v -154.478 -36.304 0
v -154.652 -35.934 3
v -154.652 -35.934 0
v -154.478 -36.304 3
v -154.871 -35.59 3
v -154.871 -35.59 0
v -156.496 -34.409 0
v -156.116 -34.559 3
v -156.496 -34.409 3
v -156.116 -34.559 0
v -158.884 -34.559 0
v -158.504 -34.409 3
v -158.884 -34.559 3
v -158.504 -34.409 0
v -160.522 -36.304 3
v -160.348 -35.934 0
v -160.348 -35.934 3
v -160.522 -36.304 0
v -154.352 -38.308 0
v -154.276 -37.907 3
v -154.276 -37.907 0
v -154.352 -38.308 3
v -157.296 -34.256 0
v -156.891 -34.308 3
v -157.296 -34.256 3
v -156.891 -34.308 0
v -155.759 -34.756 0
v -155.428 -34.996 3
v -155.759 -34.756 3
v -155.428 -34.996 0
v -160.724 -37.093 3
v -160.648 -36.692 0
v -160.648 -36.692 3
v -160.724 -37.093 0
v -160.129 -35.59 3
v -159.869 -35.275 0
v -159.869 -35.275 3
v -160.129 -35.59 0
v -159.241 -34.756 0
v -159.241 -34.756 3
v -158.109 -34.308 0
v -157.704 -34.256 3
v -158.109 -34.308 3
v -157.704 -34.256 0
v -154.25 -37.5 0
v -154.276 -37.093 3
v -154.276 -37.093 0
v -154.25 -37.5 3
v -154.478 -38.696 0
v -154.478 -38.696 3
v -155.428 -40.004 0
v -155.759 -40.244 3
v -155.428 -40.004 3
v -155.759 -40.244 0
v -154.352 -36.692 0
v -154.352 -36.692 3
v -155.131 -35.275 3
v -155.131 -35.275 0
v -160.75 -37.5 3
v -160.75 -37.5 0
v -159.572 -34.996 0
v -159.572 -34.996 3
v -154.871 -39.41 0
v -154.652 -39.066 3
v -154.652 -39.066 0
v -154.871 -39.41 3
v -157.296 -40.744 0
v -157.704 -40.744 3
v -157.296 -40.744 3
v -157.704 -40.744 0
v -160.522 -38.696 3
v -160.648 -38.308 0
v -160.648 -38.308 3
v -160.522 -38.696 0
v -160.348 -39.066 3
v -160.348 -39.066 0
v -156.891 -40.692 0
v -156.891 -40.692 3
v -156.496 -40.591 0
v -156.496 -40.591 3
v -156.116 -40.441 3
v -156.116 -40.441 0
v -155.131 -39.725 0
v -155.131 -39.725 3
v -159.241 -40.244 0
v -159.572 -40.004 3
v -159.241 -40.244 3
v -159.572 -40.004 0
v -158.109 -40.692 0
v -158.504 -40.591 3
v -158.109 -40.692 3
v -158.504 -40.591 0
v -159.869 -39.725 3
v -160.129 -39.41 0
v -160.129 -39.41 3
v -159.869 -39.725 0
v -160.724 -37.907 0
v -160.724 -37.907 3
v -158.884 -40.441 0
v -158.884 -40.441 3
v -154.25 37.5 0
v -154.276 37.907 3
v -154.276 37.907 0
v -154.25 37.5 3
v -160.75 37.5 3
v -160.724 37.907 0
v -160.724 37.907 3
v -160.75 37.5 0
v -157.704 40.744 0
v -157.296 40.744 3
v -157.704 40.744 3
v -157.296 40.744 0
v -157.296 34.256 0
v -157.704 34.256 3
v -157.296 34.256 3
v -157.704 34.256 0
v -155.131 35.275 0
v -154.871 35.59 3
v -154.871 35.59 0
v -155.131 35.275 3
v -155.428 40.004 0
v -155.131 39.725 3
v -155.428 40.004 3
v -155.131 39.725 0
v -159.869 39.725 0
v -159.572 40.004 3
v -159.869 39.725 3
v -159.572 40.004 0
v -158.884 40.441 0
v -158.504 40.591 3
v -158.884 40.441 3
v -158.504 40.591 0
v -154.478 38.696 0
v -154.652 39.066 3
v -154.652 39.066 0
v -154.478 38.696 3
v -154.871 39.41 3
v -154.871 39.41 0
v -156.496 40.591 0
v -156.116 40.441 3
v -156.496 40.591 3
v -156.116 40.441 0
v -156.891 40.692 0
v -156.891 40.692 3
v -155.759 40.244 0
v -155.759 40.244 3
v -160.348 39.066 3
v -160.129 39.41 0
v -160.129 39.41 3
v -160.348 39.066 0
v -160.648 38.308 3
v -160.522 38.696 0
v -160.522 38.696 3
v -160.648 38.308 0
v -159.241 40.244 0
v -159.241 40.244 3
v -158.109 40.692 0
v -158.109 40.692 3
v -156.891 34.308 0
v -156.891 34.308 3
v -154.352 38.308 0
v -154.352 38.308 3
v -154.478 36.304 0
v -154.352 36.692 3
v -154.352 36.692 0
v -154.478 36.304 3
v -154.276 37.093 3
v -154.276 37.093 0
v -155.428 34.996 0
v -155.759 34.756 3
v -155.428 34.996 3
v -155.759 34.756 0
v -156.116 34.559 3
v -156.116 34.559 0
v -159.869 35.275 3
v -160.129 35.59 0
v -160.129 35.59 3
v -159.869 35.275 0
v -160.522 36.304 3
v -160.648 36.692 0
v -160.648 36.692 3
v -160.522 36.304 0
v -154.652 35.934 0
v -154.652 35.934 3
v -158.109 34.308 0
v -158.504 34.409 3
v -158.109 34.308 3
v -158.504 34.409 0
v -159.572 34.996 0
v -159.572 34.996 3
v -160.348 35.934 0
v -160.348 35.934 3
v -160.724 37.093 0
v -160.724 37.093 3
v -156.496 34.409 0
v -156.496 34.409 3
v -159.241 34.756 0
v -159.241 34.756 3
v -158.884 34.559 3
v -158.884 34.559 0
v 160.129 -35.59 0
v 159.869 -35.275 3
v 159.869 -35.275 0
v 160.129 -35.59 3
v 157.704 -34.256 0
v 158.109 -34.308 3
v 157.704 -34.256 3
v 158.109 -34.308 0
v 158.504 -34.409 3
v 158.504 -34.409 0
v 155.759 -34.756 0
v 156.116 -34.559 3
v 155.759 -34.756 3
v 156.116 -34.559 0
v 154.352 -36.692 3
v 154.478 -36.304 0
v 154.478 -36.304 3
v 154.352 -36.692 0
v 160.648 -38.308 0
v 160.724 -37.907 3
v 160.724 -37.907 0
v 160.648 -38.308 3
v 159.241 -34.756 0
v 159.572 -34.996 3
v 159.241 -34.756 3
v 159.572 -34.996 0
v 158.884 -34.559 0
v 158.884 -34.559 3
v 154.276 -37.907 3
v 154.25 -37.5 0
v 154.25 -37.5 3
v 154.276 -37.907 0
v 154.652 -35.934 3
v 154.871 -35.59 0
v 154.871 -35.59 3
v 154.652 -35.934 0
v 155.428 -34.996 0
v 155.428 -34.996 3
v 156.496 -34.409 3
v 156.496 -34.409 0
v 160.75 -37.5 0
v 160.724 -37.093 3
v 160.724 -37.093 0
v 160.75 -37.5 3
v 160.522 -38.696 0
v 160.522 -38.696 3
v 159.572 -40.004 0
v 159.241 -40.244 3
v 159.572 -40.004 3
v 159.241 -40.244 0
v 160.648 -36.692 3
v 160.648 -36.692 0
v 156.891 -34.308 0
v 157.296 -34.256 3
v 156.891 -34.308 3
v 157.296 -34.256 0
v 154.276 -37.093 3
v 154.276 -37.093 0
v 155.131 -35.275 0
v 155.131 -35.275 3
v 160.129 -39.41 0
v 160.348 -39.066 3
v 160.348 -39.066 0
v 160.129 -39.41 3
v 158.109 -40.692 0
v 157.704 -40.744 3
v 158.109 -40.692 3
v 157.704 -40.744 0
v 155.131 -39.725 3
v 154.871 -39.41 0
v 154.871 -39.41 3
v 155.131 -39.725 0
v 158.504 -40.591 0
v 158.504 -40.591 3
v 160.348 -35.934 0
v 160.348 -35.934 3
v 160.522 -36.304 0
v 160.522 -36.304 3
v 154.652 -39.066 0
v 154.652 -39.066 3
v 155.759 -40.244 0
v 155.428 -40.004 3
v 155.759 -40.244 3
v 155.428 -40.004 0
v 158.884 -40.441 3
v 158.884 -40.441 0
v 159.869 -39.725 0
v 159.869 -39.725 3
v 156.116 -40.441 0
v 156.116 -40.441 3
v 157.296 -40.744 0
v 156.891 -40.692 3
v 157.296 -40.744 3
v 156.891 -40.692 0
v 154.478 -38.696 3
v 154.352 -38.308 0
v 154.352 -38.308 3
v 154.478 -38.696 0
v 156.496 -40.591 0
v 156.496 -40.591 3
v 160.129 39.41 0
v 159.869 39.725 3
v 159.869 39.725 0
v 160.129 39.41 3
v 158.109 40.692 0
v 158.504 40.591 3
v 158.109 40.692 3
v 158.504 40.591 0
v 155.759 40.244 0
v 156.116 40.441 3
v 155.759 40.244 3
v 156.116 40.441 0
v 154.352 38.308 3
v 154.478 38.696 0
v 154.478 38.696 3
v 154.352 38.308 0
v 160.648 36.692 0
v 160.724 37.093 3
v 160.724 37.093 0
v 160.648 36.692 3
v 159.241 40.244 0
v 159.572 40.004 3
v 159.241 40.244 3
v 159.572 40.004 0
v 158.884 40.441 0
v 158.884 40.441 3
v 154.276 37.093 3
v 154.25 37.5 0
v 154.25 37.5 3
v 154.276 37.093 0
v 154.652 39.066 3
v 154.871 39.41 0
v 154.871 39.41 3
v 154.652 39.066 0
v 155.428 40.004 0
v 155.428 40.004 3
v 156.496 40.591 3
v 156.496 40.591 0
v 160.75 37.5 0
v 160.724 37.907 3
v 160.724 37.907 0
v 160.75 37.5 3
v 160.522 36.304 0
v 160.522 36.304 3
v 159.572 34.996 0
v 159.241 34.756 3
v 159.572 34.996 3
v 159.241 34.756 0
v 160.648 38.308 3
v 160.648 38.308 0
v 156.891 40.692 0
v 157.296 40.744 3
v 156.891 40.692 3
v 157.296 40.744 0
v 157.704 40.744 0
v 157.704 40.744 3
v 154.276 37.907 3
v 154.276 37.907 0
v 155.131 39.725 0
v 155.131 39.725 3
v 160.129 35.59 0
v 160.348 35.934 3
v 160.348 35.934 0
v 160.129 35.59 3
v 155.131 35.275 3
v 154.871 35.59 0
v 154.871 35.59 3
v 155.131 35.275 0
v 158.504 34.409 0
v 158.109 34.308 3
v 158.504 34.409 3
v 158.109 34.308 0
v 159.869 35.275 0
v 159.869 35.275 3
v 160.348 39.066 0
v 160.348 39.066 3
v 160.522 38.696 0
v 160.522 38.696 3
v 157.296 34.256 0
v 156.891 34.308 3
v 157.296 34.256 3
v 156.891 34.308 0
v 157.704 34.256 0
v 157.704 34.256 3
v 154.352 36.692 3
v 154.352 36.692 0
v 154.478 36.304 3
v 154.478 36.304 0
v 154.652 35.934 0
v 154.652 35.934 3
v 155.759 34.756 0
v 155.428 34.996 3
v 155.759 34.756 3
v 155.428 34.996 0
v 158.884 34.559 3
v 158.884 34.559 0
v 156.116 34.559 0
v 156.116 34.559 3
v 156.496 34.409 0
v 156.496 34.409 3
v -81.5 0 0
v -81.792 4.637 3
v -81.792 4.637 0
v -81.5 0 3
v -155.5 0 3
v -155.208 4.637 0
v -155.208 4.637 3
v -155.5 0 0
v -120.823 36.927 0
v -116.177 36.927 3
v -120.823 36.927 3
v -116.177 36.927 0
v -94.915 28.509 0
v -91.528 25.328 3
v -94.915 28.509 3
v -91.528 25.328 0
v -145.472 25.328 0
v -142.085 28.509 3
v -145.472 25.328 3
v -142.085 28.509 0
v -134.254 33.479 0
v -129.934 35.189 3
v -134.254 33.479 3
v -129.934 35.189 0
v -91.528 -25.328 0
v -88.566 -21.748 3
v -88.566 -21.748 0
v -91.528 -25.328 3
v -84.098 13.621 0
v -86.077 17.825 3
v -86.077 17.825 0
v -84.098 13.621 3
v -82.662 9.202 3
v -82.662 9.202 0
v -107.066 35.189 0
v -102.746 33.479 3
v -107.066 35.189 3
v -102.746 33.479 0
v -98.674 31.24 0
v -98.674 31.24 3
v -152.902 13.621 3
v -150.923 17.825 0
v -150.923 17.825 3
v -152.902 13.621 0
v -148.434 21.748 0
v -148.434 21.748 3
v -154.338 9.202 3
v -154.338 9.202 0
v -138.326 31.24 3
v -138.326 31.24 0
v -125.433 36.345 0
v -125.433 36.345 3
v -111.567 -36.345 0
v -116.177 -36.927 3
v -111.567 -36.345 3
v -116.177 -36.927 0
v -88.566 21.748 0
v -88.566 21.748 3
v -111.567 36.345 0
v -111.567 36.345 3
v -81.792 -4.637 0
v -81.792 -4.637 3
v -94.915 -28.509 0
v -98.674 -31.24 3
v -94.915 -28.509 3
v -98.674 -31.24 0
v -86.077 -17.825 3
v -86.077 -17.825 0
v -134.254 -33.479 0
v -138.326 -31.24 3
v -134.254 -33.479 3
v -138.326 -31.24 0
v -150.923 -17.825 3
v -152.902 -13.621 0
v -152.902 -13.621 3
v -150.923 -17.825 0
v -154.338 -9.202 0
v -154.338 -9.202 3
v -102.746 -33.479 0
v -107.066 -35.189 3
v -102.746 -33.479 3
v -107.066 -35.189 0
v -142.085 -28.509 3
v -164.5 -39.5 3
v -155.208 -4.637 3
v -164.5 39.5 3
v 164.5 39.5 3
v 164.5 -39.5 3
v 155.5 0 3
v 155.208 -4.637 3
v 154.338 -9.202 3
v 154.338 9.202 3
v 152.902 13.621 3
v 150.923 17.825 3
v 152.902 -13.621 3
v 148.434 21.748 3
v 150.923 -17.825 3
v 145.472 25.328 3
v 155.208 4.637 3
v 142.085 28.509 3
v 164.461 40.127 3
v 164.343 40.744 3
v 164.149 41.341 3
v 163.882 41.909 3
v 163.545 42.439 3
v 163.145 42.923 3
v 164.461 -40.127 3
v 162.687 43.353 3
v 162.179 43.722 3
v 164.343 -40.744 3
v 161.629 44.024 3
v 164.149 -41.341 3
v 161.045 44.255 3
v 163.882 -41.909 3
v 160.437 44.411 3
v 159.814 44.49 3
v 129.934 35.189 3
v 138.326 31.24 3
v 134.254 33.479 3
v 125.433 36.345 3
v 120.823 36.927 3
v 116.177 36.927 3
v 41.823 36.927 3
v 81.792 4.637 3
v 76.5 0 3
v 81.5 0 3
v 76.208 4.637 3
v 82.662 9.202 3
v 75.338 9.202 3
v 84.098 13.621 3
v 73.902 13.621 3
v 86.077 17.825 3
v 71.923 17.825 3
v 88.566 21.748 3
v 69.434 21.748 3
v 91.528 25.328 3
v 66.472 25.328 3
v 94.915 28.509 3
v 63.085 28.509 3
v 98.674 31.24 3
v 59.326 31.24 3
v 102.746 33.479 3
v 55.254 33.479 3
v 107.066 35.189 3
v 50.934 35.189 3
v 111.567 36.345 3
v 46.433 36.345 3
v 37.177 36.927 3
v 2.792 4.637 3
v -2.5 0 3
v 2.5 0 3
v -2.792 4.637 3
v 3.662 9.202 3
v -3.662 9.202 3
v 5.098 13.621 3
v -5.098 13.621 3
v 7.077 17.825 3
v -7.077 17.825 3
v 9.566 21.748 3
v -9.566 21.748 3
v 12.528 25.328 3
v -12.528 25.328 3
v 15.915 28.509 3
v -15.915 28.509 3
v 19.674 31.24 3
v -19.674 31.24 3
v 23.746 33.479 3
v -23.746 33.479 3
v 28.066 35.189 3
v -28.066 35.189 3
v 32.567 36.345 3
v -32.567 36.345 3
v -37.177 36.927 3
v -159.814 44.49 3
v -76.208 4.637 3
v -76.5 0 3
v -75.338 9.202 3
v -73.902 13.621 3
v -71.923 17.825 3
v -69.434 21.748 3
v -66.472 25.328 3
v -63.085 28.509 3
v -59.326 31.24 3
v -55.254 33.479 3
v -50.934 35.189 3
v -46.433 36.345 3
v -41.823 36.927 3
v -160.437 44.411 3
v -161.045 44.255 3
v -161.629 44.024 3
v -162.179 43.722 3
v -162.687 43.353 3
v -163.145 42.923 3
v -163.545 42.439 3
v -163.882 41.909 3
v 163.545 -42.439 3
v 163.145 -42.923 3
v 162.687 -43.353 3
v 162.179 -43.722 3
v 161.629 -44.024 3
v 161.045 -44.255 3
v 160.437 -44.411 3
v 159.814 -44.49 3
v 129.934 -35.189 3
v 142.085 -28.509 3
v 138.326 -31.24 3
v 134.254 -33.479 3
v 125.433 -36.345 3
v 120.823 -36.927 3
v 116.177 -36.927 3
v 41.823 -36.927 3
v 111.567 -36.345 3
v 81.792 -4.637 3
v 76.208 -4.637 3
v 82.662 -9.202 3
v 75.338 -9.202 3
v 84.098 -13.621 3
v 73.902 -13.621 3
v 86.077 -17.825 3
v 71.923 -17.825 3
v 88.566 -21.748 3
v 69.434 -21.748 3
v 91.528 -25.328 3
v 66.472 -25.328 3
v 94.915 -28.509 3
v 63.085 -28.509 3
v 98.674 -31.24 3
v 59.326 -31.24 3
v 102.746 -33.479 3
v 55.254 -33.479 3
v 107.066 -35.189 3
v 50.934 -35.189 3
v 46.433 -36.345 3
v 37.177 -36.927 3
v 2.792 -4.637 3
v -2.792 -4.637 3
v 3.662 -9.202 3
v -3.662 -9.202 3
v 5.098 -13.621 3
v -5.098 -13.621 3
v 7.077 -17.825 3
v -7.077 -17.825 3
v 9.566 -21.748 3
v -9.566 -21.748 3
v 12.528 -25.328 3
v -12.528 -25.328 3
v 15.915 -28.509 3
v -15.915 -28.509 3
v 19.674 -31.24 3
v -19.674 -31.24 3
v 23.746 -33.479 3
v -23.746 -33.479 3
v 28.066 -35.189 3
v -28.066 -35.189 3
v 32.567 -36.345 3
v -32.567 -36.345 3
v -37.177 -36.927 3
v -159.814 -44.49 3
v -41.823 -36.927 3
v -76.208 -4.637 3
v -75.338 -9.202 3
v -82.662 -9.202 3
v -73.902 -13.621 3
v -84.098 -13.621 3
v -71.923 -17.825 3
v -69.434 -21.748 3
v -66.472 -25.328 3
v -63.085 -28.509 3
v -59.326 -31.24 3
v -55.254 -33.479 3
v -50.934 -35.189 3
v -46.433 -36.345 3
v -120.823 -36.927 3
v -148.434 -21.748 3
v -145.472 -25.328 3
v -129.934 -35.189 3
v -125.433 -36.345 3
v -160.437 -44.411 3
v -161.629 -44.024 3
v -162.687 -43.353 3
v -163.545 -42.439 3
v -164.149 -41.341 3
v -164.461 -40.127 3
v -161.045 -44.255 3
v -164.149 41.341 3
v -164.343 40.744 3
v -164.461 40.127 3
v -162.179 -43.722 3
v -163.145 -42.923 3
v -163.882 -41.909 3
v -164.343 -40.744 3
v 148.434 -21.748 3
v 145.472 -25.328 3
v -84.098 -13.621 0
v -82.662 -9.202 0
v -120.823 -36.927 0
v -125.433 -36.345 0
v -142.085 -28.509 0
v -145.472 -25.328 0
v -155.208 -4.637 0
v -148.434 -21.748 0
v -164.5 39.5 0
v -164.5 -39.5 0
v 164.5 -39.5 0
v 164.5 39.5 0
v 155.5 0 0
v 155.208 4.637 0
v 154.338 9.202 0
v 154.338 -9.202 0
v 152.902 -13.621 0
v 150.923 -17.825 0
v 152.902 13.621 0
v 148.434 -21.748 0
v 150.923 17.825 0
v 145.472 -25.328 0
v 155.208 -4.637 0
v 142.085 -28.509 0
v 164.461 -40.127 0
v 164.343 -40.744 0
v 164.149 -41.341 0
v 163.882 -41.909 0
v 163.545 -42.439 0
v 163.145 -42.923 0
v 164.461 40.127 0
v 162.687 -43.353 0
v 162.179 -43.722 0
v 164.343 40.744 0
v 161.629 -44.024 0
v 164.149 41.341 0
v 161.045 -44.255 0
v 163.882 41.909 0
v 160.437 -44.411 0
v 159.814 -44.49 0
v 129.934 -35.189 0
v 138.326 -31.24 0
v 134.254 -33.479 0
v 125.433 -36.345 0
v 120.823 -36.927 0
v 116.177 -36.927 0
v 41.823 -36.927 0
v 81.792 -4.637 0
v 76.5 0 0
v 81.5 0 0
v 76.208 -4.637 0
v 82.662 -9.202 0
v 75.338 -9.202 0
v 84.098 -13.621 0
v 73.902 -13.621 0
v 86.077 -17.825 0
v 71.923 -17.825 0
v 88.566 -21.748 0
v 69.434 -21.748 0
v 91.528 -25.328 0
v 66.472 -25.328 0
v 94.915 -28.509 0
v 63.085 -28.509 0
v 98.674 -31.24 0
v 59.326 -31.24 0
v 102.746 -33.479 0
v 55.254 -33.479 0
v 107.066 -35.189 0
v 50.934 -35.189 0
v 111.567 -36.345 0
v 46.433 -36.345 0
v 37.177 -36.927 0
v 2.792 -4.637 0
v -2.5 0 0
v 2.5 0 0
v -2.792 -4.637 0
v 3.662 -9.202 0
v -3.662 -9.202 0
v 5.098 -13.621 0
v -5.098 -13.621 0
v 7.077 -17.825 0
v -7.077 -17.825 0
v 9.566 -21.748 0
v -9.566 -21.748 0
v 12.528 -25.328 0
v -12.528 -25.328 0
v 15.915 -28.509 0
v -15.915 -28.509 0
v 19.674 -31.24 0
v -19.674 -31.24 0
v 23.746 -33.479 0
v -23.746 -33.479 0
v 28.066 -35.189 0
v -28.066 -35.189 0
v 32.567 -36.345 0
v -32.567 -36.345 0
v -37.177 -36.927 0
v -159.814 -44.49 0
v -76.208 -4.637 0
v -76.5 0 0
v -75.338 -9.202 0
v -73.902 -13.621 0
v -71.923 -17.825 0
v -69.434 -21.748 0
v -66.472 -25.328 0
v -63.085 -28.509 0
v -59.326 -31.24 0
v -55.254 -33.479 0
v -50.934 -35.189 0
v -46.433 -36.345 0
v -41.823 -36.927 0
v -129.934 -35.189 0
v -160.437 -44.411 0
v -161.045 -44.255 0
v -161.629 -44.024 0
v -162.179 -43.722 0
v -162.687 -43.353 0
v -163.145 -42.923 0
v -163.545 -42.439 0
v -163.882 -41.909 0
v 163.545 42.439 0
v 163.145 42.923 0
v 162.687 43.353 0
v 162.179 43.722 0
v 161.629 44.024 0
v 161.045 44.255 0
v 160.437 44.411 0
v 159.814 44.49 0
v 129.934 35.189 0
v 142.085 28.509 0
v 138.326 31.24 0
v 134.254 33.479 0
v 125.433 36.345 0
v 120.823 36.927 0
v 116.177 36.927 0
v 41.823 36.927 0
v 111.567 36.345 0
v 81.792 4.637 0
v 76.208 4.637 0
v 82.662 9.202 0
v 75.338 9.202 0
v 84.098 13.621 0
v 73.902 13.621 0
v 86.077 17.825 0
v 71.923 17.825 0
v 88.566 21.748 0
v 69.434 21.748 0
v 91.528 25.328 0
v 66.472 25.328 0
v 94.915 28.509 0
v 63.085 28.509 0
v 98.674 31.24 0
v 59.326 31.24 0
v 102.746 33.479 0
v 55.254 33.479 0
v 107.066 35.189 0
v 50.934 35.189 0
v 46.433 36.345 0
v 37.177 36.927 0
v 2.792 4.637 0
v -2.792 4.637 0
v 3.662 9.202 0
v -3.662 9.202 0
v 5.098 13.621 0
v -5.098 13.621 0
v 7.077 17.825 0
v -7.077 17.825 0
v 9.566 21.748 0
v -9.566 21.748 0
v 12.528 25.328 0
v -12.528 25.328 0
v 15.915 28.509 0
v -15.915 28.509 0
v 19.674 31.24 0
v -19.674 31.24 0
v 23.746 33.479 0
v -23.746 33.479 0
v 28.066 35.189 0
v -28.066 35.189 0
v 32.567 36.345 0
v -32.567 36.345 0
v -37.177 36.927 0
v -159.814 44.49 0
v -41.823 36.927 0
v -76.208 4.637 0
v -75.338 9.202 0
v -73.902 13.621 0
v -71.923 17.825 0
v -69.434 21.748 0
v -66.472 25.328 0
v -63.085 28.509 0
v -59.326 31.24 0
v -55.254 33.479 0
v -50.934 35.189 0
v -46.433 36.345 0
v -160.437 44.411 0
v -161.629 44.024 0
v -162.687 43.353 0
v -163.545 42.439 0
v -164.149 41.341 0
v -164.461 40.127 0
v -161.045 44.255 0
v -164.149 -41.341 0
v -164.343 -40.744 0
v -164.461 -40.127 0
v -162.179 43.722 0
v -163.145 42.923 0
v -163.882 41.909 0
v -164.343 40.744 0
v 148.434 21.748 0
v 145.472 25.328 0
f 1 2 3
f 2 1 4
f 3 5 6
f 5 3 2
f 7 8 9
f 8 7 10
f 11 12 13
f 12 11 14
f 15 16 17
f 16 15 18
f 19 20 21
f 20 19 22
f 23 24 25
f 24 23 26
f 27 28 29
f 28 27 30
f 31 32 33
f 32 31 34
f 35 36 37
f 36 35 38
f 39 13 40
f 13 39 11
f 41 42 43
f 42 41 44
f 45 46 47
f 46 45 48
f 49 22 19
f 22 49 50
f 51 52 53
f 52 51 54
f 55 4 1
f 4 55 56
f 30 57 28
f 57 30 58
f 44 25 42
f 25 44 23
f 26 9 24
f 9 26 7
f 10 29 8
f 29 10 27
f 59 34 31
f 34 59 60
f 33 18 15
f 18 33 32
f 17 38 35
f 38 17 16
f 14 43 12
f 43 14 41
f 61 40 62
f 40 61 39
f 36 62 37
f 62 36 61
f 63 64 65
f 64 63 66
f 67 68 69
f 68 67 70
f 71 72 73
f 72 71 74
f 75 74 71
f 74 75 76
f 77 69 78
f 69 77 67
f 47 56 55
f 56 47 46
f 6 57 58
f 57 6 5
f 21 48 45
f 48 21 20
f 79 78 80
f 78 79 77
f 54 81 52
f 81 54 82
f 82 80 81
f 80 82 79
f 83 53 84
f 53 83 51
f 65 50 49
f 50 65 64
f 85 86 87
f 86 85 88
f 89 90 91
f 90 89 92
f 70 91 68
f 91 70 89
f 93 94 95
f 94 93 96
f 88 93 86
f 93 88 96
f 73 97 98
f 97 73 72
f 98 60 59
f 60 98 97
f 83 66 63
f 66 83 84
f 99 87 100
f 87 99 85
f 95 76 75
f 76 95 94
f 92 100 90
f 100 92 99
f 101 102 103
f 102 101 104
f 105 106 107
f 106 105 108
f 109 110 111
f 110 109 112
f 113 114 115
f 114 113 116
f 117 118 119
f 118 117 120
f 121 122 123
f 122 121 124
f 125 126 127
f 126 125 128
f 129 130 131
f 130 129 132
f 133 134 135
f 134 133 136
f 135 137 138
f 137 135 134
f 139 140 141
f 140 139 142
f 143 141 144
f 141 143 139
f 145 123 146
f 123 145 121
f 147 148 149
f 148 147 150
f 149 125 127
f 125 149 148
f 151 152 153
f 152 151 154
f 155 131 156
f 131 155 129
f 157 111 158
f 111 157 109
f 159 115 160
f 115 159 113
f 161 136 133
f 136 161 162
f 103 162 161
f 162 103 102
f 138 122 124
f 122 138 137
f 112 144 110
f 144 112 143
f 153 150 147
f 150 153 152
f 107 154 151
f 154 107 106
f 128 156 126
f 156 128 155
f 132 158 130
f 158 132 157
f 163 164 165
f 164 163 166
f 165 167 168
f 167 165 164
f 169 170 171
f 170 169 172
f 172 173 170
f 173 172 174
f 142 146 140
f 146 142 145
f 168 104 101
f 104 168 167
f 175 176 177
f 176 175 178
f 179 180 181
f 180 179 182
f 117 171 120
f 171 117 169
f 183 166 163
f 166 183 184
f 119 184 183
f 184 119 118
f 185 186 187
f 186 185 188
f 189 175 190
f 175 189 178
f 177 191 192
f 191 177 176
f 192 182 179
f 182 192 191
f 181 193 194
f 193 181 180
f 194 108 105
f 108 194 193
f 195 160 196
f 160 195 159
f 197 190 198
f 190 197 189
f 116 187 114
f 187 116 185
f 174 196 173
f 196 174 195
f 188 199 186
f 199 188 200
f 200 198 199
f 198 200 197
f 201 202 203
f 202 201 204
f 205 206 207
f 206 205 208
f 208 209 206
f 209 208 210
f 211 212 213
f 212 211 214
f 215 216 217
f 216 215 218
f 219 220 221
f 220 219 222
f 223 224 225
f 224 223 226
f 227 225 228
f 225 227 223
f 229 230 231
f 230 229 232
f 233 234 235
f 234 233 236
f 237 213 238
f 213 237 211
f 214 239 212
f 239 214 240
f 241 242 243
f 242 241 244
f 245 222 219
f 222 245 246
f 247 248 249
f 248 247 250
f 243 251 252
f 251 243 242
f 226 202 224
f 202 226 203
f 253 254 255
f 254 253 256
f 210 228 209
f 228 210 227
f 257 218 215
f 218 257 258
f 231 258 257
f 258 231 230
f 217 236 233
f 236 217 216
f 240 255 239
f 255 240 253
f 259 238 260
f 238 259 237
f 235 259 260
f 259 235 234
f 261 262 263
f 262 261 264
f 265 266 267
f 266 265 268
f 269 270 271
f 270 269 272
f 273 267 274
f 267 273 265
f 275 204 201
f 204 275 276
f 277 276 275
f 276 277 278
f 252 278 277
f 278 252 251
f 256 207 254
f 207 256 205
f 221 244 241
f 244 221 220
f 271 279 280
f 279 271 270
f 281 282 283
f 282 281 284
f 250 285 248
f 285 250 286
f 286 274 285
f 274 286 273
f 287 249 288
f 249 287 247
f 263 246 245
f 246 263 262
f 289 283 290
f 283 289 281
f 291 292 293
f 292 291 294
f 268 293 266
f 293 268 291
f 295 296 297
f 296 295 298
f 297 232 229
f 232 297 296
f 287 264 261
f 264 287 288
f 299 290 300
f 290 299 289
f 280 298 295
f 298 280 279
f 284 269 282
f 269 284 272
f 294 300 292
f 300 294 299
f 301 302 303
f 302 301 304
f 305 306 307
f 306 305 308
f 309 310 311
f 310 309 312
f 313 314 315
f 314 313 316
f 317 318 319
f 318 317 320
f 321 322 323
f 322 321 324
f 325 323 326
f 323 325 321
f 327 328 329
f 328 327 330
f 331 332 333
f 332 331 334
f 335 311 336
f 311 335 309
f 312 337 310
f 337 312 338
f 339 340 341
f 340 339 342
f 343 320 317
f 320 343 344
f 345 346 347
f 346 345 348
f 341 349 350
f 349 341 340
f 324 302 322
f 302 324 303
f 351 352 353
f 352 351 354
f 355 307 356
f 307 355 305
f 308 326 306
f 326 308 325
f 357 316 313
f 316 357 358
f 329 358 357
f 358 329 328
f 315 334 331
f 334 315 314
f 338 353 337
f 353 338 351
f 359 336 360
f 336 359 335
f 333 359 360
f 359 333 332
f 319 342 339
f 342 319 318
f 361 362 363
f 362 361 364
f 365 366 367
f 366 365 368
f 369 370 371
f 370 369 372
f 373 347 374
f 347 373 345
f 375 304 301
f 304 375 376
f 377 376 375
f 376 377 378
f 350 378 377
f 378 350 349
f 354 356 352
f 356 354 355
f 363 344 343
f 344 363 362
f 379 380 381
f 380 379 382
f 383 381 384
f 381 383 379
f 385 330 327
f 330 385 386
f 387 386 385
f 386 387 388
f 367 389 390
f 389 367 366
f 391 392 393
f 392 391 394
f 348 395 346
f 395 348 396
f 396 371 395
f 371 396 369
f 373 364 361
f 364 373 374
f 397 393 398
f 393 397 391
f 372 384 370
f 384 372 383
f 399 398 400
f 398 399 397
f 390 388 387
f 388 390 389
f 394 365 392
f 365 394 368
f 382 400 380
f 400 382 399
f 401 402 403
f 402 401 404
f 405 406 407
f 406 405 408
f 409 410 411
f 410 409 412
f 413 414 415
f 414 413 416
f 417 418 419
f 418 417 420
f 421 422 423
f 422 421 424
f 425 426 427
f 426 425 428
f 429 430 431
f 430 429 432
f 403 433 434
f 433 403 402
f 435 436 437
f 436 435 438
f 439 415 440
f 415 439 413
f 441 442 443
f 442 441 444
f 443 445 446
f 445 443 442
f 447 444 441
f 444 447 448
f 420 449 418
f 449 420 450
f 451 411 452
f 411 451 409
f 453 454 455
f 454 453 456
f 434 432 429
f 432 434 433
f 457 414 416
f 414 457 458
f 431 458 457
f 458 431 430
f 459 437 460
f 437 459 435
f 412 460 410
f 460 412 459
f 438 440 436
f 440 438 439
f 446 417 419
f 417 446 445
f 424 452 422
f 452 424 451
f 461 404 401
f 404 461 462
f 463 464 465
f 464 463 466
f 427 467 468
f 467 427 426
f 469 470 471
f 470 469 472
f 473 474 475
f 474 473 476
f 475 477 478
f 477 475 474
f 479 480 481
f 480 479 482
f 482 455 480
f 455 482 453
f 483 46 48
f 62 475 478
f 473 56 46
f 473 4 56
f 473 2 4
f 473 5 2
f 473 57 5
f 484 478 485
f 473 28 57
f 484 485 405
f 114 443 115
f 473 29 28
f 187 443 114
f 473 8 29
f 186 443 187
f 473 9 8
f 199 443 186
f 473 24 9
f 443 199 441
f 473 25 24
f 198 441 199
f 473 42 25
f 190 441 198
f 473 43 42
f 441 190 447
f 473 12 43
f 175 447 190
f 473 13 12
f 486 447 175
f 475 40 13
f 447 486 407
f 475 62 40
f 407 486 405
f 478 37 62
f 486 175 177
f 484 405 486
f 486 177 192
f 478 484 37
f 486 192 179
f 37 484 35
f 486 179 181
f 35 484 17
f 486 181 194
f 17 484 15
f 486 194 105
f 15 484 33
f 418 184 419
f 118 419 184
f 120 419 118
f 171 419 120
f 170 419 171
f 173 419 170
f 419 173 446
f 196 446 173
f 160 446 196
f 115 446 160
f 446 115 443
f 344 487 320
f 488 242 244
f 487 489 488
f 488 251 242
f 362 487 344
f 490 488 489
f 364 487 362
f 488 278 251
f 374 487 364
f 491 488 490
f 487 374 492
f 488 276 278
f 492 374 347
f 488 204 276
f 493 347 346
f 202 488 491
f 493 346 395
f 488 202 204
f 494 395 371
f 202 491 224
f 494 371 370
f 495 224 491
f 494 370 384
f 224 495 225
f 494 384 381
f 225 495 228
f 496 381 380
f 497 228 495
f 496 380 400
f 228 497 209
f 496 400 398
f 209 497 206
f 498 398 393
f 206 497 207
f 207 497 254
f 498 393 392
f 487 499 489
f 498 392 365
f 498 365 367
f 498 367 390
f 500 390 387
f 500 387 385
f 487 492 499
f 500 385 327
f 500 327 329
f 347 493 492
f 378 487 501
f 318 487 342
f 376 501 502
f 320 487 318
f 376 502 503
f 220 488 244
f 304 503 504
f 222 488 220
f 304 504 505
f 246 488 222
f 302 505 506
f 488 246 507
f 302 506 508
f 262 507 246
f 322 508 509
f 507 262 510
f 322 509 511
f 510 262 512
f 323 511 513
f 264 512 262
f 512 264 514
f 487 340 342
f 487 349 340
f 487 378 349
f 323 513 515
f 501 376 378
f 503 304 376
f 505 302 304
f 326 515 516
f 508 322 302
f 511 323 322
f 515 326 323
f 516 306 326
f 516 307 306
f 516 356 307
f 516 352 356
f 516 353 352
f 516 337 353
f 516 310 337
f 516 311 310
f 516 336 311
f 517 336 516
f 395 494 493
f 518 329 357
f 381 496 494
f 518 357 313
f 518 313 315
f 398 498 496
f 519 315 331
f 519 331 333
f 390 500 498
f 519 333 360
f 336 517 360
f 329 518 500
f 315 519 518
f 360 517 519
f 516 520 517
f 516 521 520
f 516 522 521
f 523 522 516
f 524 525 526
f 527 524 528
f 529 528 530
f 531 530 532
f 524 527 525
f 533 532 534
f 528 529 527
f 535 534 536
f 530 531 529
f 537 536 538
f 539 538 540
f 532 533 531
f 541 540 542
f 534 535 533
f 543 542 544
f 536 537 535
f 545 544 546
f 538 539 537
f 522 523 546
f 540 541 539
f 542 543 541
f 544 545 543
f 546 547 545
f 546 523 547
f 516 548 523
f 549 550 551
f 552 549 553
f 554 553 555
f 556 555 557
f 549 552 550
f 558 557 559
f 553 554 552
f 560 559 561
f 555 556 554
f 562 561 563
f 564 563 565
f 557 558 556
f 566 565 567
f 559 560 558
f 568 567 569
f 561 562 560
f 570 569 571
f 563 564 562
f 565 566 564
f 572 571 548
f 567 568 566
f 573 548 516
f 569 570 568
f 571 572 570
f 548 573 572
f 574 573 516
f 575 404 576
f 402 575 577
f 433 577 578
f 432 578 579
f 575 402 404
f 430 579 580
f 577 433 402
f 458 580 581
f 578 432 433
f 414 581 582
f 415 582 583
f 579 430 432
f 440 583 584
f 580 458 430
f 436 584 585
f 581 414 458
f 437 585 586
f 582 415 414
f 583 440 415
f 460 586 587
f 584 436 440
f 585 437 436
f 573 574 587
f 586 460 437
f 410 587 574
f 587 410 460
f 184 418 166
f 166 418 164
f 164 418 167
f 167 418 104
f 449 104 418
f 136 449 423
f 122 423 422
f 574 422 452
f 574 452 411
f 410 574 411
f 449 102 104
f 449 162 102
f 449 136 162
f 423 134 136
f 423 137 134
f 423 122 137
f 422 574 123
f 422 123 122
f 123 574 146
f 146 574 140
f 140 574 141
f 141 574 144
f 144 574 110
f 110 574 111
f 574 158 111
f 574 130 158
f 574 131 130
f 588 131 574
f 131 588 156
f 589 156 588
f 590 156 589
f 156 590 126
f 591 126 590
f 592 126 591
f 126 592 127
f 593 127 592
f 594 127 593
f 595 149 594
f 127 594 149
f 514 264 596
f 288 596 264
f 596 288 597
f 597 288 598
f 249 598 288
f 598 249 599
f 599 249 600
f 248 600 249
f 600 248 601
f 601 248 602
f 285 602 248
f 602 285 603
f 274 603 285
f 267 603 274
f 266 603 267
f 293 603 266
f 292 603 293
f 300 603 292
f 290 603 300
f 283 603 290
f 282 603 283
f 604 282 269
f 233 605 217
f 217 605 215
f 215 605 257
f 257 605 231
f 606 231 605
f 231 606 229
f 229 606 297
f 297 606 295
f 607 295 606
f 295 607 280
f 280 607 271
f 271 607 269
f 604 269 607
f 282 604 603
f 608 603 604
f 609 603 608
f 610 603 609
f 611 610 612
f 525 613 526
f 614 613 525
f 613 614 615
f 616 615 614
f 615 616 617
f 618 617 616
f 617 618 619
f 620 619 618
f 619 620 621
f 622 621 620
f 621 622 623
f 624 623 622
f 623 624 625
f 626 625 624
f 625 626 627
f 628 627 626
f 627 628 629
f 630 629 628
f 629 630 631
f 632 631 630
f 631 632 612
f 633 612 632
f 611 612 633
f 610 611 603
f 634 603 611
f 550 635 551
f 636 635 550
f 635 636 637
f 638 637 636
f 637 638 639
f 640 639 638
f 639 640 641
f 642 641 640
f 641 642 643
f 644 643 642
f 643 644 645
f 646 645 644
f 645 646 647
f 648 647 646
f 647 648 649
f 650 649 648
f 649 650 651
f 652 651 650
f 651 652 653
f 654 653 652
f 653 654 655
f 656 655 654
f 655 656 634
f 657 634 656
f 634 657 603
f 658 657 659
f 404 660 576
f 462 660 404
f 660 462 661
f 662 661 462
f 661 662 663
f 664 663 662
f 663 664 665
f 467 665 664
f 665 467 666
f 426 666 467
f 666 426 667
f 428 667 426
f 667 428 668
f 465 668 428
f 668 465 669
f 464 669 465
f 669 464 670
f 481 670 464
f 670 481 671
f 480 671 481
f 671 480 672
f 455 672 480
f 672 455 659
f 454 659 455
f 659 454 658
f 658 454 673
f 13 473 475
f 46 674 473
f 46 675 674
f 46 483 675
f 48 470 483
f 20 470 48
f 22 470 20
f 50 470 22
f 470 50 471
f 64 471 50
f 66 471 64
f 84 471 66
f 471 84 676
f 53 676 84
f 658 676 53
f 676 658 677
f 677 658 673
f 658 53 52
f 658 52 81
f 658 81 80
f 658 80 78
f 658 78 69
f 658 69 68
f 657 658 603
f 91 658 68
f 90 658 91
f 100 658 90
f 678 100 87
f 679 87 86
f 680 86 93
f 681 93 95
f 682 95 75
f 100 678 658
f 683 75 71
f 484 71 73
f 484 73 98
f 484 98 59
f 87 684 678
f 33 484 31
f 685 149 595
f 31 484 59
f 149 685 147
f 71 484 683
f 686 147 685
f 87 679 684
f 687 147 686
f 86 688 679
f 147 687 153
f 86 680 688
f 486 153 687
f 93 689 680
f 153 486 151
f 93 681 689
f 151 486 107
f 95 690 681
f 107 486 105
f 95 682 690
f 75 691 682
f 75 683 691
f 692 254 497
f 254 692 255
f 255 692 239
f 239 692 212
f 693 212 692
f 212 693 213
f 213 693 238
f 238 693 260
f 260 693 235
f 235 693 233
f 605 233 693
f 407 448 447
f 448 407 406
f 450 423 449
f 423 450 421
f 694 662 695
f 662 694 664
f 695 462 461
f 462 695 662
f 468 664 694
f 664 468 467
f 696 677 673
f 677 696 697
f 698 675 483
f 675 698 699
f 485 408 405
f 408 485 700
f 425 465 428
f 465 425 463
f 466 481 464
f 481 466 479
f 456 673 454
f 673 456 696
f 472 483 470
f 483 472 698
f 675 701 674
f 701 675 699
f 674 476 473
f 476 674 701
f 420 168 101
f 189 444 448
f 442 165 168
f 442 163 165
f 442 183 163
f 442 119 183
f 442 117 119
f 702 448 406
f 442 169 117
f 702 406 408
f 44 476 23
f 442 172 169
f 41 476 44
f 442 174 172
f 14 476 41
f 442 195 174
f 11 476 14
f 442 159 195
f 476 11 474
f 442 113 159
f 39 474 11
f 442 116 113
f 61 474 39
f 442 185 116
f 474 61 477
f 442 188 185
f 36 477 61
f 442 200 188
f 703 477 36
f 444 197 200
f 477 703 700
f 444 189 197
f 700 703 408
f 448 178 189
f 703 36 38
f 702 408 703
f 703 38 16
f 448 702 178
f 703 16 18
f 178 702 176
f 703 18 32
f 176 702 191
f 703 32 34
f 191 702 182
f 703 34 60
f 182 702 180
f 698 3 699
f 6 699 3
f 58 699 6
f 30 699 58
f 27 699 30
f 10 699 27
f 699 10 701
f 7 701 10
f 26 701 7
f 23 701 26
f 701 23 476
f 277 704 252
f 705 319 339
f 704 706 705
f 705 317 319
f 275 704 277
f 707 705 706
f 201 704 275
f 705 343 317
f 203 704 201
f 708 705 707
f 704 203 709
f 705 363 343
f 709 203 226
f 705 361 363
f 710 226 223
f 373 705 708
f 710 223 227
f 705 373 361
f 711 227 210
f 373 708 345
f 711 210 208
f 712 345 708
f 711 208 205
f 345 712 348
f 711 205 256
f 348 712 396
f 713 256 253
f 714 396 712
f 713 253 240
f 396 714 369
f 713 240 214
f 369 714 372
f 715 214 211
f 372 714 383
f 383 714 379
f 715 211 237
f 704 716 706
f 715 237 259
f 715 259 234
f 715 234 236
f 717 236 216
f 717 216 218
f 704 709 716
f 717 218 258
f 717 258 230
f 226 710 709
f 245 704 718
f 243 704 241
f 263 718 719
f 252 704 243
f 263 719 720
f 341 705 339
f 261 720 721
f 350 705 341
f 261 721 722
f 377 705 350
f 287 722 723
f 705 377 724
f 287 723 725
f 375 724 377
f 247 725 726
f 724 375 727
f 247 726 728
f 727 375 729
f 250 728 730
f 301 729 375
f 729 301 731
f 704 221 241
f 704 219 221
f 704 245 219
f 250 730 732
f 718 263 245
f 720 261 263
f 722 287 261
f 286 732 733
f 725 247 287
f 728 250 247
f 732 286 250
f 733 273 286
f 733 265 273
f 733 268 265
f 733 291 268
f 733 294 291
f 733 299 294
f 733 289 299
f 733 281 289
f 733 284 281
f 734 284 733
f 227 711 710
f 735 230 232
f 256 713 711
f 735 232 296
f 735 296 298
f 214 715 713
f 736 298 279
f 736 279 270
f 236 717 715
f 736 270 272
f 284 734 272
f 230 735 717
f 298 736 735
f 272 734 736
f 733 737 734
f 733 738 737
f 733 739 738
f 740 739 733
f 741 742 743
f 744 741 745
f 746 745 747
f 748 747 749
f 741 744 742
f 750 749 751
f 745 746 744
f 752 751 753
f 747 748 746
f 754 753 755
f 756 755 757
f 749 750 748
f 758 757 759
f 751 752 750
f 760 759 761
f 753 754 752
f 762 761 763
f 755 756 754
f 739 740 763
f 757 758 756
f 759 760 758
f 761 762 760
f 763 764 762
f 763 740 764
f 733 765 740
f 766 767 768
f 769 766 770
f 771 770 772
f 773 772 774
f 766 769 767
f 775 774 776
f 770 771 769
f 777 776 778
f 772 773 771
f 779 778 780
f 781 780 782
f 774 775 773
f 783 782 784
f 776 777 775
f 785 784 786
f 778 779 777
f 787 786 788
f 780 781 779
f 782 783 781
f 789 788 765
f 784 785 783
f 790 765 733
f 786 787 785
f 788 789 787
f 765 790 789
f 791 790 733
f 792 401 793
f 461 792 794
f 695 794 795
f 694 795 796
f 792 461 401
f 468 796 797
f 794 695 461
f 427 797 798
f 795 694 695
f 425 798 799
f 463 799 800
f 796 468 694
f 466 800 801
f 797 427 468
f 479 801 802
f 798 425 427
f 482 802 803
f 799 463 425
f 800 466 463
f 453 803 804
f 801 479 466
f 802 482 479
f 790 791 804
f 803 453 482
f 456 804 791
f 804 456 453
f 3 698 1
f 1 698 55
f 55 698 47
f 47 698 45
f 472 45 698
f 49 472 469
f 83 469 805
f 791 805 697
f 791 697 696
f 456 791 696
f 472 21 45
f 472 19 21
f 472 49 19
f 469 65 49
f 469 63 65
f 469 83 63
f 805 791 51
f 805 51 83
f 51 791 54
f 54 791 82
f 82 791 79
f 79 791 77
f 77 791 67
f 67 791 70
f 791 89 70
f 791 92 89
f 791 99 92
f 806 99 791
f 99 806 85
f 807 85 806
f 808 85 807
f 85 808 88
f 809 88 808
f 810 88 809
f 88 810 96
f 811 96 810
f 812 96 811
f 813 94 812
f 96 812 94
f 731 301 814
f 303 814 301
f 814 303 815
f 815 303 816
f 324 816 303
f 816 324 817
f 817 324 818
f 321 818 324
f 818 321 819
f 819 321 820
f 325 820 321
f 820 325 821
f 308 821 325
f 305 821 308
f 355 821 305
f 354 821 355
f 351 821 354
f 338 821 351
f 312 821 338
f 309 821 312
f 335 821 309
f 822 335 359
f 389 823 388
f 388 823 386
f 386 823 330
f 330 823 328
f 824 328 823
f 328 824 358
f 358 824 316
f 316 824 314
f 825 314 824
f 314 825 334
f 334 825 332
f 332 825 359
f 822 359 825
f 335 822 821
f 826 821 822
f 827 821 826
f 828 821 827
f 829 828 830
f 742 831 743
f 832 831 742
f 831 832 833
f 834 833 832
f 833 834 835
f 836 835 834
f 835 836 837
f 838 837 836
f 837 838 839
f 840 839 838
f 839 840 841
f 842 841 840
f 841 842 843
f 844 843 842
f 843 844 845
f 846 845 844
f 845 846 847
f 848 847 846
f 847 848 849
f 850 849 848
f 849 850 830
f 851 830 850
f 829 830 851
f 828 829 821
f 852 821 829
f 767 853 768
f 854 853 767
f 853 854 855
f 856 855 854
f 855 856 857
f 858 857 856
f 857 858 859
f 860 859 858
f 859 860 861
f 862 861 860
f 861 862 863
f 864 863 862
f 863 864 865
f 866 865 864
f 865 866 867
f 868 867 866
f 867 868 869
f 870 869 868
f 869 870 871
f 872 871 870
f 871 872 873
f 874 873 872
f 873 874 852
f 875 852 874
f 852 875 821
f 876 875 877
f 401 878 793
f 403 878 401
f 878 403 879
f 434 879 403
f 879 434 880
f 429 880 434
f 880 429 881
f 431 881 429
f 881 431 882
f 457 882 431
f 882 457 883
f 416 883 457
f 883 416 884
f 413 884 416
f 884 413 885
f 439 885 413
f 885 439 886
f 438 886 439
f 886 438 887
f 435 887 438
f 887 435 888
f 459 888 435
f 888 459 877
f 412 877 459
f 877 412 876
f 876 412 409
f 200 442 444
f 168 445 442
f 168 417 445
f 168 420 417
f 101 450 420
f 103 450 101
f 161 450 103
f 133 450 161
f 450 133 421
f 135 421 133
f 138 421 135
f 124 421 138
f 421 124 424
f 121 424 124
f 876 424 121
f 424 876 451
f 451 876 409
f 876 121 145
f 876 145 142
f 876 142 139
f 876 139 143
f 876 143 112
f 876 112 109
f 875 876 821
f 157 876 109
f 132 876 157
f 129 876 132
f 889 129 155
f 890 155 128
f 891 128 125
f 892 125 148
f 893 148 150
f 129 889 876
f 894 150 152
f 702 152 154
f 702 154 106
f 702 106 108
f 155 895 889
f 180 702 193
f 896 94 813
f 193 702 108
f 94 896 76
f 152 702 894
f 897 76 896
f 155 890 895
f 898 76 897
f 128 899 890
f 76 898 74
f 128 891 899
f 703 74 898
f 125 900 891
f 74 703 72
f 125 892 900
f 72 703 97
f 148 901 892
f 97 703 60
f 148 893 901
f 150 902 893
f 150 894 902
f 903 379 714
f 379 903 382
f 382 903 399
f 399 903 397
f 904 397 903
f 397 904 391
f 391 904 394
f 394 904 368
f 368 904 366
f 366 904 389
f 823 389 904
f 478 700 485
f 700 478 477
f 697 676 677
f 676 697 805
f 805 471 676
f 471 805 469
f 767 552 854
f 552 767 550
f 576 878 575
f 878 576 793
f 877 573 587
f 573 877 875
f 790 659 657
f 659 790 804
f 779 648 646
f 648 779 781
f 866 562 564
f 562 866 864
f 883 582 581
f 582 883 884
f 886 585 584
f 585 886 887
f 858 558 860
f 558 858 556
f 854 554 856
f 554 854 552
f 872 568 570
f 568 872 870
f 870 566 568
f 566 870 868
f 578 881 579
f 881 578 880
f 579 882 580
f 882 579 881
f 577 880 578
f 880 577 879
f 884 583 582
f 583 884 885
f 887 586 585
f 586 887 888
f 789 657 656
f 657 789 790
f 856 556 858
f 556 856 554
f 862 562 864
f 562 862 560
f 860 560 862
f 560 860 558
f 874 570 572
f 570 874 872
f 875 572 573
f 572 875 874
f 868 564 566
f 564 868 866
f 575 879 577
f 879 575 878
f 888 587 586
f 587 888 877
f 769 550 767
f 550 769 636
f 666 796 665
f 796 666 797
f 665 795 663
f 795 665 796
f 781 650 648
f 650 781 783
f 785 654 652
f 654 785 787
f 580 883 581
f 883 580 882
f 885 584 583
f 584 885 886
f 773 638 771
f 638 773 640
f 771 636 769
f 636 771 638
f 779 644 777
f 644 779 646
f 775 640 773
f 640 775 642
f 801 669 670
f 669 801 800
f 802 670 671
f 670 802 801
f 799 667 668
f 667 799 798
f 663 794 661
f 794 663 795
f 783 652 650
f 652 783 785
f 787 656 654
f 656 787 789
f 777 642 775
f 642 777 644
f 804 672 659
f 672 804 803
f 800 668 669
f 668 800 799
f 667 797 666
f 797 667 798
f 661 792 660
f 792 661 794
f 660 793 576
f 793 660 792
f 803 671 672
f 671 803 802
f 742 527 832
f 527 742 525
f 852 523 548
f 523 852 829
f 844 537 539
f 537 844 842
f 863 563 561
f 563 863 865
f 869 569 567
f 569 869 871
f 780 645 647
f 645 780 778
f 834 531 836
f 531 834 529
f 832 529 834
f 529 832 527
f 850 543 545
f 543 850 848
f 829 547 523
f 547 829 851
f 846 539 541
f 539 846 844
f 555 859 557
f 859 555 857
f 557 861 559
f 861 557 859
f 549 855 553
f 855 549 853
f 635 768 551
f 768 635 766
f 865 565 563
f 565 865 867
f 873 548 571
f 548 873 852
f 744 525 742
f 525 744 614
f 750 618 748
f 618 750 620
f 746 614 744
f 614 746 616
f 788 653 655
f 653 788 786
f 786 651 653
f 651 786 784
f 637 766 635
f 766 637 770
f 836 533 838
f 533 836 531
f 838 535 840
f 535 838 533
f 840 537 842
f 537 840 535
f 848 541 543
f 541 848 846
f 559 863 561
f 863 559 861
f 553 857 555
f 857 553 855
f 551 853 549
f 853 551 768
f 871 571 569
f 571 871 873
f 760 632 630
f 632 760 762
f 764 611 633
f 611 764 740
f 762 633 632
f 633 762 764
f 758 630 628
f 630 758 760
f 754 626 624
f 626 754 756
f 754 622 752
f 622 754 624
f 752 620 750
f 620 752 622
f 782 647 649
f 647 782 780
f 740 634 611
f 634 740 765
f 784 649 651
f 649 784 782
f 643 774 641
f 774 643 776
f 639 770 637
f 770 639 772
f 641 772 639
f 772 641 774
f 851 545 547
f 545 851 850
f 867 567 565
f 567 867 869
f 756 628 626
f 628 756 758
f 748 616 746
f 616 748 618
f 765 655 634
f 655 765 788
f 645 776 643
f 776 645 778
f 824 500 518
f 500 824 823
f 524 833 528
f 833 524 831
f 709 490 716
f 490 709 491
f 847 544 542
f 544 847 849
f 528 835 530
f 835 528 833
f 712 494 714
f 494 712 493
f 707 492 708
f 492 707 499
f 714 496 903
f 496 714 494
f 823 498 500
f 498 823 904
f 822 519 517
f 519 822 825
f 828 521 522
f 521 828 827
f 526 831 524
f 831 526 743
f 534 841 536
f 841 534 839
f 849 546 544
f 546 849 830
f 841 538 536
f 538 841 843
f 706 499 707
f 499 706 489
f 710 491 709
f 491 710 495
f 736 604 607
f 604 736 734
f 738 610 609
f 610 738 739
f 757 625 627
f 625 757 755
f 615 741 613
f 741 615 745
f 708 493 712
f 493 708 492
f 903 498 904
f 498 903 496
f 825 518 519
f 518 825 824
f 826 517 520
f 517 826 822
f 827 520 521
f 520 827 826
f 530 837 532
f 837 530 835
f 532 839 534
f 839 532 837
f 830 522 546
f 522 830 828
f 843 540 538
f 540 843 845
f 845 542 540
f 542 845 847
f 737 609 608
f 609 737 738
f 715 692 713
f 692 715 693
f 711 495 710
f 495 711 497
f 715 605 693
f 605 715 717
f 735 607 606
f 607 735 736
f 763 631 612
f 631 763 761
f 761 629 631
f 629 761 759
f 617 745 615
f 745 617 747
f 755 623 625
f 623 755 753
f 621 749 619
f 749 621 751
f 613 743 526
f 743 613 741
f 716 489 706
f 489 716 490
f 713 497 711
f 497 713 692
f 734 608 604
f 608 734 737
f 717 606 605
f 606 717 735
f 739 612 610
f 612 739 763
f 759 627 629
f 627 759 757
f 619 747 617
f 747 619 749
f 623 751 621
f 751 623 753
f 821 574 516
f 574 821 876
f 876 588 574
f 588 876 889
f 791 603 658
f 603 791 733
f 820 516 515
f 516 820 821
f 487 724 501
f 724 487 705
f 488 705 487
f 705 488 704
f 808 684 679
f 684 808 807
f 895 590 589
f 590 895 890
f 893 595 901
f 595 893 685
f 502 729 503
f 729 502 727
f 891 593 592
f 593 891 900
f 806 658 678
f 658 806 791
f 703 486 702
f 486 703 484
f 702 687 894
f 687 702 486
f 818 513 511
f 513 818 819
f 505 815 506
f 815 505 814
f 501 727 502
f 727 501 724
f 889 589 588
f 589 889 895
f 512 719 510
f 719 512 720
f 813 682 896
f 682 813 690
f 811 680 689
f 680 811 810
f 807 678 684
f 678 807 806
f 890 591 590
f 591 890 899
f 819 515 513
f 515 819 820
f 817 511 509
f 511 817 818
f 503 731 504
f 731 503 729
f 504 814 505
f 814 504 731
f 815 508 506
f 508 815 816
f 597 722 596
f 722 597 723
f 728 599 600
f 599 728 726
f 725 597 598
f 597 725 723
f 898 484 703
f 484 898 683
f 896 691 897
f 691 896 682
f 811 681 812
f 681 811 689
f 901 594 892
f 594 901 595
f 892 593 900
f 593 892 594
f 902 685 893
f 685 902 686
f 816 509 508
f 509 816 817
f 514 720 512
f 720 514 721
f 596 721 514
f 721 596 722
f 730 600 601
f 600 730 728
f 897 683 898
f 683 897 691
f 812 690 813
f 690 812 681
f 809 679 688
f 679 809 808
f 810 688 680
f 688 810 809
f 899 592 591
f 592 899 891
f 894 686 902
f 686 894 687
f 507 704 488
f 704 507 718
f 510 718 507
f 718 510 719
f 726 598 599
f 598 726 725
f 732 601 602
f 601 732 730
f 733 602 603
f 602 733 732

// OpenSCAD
$fn = 50;


difference() {
	union() {
		hull() {
			translate(v = [-159.5000000000, 39.5000000000, 0]) {
				cylinder(h = 3, r = 5);
			}
			translate(v = [159.5000000000, 39.5000000000, 0]) {
				cylinder(h = 3, r = 5);
			}
			translate(v = [-159.5000000000, -39.5000000000, 0]) {
				cylinder(h = 3, r = 5);
			}
			translate(v = [159.5000000000, -39.5000000000, 0]) {
				cylinder(h = 3, r = 5);
			}
		}
	}
	union() {
		#translate(v = [-157.5000000000, -37.5000000000, -100.0000000000]) {
			cylinder(h = 200, r = 3.2500000000);
		}
		#translate(v = [-157.5000000000, 37.5000000000, -100.0000000000]) {
			cylinder(h = 200, r = 3.2500000000);
		}
		#translate(v = [157.5000000000, -37.5000000000, -100.0000000000]) {
			cylinder(h = 200, r = 3.2500000000);
		}
		#translate(v = [157.5000000000, 37.5000000000, -100.0000000000]) {
			cylinder(h = 200, r = 3.2500000000);
		}
		#translate(v = [-118.5000000000, 0, 0]) {
			cylinder(h = 3, r = 37.0000000000);
		}
		#translate(v = [-39.5000000000, 0, 0]) {
			cylinder(h = 3, r = 37.0000000000);
		}
		#translate(v = [39.5000000000, 0, 0]) {
			cylinder(h = 3, r = 37.0000000000);
		}
		#translate(v = [118.5000000000, 0, 0]) {
			cylinder(h = 3, r = 37.0000000000);
		}
	}
}
